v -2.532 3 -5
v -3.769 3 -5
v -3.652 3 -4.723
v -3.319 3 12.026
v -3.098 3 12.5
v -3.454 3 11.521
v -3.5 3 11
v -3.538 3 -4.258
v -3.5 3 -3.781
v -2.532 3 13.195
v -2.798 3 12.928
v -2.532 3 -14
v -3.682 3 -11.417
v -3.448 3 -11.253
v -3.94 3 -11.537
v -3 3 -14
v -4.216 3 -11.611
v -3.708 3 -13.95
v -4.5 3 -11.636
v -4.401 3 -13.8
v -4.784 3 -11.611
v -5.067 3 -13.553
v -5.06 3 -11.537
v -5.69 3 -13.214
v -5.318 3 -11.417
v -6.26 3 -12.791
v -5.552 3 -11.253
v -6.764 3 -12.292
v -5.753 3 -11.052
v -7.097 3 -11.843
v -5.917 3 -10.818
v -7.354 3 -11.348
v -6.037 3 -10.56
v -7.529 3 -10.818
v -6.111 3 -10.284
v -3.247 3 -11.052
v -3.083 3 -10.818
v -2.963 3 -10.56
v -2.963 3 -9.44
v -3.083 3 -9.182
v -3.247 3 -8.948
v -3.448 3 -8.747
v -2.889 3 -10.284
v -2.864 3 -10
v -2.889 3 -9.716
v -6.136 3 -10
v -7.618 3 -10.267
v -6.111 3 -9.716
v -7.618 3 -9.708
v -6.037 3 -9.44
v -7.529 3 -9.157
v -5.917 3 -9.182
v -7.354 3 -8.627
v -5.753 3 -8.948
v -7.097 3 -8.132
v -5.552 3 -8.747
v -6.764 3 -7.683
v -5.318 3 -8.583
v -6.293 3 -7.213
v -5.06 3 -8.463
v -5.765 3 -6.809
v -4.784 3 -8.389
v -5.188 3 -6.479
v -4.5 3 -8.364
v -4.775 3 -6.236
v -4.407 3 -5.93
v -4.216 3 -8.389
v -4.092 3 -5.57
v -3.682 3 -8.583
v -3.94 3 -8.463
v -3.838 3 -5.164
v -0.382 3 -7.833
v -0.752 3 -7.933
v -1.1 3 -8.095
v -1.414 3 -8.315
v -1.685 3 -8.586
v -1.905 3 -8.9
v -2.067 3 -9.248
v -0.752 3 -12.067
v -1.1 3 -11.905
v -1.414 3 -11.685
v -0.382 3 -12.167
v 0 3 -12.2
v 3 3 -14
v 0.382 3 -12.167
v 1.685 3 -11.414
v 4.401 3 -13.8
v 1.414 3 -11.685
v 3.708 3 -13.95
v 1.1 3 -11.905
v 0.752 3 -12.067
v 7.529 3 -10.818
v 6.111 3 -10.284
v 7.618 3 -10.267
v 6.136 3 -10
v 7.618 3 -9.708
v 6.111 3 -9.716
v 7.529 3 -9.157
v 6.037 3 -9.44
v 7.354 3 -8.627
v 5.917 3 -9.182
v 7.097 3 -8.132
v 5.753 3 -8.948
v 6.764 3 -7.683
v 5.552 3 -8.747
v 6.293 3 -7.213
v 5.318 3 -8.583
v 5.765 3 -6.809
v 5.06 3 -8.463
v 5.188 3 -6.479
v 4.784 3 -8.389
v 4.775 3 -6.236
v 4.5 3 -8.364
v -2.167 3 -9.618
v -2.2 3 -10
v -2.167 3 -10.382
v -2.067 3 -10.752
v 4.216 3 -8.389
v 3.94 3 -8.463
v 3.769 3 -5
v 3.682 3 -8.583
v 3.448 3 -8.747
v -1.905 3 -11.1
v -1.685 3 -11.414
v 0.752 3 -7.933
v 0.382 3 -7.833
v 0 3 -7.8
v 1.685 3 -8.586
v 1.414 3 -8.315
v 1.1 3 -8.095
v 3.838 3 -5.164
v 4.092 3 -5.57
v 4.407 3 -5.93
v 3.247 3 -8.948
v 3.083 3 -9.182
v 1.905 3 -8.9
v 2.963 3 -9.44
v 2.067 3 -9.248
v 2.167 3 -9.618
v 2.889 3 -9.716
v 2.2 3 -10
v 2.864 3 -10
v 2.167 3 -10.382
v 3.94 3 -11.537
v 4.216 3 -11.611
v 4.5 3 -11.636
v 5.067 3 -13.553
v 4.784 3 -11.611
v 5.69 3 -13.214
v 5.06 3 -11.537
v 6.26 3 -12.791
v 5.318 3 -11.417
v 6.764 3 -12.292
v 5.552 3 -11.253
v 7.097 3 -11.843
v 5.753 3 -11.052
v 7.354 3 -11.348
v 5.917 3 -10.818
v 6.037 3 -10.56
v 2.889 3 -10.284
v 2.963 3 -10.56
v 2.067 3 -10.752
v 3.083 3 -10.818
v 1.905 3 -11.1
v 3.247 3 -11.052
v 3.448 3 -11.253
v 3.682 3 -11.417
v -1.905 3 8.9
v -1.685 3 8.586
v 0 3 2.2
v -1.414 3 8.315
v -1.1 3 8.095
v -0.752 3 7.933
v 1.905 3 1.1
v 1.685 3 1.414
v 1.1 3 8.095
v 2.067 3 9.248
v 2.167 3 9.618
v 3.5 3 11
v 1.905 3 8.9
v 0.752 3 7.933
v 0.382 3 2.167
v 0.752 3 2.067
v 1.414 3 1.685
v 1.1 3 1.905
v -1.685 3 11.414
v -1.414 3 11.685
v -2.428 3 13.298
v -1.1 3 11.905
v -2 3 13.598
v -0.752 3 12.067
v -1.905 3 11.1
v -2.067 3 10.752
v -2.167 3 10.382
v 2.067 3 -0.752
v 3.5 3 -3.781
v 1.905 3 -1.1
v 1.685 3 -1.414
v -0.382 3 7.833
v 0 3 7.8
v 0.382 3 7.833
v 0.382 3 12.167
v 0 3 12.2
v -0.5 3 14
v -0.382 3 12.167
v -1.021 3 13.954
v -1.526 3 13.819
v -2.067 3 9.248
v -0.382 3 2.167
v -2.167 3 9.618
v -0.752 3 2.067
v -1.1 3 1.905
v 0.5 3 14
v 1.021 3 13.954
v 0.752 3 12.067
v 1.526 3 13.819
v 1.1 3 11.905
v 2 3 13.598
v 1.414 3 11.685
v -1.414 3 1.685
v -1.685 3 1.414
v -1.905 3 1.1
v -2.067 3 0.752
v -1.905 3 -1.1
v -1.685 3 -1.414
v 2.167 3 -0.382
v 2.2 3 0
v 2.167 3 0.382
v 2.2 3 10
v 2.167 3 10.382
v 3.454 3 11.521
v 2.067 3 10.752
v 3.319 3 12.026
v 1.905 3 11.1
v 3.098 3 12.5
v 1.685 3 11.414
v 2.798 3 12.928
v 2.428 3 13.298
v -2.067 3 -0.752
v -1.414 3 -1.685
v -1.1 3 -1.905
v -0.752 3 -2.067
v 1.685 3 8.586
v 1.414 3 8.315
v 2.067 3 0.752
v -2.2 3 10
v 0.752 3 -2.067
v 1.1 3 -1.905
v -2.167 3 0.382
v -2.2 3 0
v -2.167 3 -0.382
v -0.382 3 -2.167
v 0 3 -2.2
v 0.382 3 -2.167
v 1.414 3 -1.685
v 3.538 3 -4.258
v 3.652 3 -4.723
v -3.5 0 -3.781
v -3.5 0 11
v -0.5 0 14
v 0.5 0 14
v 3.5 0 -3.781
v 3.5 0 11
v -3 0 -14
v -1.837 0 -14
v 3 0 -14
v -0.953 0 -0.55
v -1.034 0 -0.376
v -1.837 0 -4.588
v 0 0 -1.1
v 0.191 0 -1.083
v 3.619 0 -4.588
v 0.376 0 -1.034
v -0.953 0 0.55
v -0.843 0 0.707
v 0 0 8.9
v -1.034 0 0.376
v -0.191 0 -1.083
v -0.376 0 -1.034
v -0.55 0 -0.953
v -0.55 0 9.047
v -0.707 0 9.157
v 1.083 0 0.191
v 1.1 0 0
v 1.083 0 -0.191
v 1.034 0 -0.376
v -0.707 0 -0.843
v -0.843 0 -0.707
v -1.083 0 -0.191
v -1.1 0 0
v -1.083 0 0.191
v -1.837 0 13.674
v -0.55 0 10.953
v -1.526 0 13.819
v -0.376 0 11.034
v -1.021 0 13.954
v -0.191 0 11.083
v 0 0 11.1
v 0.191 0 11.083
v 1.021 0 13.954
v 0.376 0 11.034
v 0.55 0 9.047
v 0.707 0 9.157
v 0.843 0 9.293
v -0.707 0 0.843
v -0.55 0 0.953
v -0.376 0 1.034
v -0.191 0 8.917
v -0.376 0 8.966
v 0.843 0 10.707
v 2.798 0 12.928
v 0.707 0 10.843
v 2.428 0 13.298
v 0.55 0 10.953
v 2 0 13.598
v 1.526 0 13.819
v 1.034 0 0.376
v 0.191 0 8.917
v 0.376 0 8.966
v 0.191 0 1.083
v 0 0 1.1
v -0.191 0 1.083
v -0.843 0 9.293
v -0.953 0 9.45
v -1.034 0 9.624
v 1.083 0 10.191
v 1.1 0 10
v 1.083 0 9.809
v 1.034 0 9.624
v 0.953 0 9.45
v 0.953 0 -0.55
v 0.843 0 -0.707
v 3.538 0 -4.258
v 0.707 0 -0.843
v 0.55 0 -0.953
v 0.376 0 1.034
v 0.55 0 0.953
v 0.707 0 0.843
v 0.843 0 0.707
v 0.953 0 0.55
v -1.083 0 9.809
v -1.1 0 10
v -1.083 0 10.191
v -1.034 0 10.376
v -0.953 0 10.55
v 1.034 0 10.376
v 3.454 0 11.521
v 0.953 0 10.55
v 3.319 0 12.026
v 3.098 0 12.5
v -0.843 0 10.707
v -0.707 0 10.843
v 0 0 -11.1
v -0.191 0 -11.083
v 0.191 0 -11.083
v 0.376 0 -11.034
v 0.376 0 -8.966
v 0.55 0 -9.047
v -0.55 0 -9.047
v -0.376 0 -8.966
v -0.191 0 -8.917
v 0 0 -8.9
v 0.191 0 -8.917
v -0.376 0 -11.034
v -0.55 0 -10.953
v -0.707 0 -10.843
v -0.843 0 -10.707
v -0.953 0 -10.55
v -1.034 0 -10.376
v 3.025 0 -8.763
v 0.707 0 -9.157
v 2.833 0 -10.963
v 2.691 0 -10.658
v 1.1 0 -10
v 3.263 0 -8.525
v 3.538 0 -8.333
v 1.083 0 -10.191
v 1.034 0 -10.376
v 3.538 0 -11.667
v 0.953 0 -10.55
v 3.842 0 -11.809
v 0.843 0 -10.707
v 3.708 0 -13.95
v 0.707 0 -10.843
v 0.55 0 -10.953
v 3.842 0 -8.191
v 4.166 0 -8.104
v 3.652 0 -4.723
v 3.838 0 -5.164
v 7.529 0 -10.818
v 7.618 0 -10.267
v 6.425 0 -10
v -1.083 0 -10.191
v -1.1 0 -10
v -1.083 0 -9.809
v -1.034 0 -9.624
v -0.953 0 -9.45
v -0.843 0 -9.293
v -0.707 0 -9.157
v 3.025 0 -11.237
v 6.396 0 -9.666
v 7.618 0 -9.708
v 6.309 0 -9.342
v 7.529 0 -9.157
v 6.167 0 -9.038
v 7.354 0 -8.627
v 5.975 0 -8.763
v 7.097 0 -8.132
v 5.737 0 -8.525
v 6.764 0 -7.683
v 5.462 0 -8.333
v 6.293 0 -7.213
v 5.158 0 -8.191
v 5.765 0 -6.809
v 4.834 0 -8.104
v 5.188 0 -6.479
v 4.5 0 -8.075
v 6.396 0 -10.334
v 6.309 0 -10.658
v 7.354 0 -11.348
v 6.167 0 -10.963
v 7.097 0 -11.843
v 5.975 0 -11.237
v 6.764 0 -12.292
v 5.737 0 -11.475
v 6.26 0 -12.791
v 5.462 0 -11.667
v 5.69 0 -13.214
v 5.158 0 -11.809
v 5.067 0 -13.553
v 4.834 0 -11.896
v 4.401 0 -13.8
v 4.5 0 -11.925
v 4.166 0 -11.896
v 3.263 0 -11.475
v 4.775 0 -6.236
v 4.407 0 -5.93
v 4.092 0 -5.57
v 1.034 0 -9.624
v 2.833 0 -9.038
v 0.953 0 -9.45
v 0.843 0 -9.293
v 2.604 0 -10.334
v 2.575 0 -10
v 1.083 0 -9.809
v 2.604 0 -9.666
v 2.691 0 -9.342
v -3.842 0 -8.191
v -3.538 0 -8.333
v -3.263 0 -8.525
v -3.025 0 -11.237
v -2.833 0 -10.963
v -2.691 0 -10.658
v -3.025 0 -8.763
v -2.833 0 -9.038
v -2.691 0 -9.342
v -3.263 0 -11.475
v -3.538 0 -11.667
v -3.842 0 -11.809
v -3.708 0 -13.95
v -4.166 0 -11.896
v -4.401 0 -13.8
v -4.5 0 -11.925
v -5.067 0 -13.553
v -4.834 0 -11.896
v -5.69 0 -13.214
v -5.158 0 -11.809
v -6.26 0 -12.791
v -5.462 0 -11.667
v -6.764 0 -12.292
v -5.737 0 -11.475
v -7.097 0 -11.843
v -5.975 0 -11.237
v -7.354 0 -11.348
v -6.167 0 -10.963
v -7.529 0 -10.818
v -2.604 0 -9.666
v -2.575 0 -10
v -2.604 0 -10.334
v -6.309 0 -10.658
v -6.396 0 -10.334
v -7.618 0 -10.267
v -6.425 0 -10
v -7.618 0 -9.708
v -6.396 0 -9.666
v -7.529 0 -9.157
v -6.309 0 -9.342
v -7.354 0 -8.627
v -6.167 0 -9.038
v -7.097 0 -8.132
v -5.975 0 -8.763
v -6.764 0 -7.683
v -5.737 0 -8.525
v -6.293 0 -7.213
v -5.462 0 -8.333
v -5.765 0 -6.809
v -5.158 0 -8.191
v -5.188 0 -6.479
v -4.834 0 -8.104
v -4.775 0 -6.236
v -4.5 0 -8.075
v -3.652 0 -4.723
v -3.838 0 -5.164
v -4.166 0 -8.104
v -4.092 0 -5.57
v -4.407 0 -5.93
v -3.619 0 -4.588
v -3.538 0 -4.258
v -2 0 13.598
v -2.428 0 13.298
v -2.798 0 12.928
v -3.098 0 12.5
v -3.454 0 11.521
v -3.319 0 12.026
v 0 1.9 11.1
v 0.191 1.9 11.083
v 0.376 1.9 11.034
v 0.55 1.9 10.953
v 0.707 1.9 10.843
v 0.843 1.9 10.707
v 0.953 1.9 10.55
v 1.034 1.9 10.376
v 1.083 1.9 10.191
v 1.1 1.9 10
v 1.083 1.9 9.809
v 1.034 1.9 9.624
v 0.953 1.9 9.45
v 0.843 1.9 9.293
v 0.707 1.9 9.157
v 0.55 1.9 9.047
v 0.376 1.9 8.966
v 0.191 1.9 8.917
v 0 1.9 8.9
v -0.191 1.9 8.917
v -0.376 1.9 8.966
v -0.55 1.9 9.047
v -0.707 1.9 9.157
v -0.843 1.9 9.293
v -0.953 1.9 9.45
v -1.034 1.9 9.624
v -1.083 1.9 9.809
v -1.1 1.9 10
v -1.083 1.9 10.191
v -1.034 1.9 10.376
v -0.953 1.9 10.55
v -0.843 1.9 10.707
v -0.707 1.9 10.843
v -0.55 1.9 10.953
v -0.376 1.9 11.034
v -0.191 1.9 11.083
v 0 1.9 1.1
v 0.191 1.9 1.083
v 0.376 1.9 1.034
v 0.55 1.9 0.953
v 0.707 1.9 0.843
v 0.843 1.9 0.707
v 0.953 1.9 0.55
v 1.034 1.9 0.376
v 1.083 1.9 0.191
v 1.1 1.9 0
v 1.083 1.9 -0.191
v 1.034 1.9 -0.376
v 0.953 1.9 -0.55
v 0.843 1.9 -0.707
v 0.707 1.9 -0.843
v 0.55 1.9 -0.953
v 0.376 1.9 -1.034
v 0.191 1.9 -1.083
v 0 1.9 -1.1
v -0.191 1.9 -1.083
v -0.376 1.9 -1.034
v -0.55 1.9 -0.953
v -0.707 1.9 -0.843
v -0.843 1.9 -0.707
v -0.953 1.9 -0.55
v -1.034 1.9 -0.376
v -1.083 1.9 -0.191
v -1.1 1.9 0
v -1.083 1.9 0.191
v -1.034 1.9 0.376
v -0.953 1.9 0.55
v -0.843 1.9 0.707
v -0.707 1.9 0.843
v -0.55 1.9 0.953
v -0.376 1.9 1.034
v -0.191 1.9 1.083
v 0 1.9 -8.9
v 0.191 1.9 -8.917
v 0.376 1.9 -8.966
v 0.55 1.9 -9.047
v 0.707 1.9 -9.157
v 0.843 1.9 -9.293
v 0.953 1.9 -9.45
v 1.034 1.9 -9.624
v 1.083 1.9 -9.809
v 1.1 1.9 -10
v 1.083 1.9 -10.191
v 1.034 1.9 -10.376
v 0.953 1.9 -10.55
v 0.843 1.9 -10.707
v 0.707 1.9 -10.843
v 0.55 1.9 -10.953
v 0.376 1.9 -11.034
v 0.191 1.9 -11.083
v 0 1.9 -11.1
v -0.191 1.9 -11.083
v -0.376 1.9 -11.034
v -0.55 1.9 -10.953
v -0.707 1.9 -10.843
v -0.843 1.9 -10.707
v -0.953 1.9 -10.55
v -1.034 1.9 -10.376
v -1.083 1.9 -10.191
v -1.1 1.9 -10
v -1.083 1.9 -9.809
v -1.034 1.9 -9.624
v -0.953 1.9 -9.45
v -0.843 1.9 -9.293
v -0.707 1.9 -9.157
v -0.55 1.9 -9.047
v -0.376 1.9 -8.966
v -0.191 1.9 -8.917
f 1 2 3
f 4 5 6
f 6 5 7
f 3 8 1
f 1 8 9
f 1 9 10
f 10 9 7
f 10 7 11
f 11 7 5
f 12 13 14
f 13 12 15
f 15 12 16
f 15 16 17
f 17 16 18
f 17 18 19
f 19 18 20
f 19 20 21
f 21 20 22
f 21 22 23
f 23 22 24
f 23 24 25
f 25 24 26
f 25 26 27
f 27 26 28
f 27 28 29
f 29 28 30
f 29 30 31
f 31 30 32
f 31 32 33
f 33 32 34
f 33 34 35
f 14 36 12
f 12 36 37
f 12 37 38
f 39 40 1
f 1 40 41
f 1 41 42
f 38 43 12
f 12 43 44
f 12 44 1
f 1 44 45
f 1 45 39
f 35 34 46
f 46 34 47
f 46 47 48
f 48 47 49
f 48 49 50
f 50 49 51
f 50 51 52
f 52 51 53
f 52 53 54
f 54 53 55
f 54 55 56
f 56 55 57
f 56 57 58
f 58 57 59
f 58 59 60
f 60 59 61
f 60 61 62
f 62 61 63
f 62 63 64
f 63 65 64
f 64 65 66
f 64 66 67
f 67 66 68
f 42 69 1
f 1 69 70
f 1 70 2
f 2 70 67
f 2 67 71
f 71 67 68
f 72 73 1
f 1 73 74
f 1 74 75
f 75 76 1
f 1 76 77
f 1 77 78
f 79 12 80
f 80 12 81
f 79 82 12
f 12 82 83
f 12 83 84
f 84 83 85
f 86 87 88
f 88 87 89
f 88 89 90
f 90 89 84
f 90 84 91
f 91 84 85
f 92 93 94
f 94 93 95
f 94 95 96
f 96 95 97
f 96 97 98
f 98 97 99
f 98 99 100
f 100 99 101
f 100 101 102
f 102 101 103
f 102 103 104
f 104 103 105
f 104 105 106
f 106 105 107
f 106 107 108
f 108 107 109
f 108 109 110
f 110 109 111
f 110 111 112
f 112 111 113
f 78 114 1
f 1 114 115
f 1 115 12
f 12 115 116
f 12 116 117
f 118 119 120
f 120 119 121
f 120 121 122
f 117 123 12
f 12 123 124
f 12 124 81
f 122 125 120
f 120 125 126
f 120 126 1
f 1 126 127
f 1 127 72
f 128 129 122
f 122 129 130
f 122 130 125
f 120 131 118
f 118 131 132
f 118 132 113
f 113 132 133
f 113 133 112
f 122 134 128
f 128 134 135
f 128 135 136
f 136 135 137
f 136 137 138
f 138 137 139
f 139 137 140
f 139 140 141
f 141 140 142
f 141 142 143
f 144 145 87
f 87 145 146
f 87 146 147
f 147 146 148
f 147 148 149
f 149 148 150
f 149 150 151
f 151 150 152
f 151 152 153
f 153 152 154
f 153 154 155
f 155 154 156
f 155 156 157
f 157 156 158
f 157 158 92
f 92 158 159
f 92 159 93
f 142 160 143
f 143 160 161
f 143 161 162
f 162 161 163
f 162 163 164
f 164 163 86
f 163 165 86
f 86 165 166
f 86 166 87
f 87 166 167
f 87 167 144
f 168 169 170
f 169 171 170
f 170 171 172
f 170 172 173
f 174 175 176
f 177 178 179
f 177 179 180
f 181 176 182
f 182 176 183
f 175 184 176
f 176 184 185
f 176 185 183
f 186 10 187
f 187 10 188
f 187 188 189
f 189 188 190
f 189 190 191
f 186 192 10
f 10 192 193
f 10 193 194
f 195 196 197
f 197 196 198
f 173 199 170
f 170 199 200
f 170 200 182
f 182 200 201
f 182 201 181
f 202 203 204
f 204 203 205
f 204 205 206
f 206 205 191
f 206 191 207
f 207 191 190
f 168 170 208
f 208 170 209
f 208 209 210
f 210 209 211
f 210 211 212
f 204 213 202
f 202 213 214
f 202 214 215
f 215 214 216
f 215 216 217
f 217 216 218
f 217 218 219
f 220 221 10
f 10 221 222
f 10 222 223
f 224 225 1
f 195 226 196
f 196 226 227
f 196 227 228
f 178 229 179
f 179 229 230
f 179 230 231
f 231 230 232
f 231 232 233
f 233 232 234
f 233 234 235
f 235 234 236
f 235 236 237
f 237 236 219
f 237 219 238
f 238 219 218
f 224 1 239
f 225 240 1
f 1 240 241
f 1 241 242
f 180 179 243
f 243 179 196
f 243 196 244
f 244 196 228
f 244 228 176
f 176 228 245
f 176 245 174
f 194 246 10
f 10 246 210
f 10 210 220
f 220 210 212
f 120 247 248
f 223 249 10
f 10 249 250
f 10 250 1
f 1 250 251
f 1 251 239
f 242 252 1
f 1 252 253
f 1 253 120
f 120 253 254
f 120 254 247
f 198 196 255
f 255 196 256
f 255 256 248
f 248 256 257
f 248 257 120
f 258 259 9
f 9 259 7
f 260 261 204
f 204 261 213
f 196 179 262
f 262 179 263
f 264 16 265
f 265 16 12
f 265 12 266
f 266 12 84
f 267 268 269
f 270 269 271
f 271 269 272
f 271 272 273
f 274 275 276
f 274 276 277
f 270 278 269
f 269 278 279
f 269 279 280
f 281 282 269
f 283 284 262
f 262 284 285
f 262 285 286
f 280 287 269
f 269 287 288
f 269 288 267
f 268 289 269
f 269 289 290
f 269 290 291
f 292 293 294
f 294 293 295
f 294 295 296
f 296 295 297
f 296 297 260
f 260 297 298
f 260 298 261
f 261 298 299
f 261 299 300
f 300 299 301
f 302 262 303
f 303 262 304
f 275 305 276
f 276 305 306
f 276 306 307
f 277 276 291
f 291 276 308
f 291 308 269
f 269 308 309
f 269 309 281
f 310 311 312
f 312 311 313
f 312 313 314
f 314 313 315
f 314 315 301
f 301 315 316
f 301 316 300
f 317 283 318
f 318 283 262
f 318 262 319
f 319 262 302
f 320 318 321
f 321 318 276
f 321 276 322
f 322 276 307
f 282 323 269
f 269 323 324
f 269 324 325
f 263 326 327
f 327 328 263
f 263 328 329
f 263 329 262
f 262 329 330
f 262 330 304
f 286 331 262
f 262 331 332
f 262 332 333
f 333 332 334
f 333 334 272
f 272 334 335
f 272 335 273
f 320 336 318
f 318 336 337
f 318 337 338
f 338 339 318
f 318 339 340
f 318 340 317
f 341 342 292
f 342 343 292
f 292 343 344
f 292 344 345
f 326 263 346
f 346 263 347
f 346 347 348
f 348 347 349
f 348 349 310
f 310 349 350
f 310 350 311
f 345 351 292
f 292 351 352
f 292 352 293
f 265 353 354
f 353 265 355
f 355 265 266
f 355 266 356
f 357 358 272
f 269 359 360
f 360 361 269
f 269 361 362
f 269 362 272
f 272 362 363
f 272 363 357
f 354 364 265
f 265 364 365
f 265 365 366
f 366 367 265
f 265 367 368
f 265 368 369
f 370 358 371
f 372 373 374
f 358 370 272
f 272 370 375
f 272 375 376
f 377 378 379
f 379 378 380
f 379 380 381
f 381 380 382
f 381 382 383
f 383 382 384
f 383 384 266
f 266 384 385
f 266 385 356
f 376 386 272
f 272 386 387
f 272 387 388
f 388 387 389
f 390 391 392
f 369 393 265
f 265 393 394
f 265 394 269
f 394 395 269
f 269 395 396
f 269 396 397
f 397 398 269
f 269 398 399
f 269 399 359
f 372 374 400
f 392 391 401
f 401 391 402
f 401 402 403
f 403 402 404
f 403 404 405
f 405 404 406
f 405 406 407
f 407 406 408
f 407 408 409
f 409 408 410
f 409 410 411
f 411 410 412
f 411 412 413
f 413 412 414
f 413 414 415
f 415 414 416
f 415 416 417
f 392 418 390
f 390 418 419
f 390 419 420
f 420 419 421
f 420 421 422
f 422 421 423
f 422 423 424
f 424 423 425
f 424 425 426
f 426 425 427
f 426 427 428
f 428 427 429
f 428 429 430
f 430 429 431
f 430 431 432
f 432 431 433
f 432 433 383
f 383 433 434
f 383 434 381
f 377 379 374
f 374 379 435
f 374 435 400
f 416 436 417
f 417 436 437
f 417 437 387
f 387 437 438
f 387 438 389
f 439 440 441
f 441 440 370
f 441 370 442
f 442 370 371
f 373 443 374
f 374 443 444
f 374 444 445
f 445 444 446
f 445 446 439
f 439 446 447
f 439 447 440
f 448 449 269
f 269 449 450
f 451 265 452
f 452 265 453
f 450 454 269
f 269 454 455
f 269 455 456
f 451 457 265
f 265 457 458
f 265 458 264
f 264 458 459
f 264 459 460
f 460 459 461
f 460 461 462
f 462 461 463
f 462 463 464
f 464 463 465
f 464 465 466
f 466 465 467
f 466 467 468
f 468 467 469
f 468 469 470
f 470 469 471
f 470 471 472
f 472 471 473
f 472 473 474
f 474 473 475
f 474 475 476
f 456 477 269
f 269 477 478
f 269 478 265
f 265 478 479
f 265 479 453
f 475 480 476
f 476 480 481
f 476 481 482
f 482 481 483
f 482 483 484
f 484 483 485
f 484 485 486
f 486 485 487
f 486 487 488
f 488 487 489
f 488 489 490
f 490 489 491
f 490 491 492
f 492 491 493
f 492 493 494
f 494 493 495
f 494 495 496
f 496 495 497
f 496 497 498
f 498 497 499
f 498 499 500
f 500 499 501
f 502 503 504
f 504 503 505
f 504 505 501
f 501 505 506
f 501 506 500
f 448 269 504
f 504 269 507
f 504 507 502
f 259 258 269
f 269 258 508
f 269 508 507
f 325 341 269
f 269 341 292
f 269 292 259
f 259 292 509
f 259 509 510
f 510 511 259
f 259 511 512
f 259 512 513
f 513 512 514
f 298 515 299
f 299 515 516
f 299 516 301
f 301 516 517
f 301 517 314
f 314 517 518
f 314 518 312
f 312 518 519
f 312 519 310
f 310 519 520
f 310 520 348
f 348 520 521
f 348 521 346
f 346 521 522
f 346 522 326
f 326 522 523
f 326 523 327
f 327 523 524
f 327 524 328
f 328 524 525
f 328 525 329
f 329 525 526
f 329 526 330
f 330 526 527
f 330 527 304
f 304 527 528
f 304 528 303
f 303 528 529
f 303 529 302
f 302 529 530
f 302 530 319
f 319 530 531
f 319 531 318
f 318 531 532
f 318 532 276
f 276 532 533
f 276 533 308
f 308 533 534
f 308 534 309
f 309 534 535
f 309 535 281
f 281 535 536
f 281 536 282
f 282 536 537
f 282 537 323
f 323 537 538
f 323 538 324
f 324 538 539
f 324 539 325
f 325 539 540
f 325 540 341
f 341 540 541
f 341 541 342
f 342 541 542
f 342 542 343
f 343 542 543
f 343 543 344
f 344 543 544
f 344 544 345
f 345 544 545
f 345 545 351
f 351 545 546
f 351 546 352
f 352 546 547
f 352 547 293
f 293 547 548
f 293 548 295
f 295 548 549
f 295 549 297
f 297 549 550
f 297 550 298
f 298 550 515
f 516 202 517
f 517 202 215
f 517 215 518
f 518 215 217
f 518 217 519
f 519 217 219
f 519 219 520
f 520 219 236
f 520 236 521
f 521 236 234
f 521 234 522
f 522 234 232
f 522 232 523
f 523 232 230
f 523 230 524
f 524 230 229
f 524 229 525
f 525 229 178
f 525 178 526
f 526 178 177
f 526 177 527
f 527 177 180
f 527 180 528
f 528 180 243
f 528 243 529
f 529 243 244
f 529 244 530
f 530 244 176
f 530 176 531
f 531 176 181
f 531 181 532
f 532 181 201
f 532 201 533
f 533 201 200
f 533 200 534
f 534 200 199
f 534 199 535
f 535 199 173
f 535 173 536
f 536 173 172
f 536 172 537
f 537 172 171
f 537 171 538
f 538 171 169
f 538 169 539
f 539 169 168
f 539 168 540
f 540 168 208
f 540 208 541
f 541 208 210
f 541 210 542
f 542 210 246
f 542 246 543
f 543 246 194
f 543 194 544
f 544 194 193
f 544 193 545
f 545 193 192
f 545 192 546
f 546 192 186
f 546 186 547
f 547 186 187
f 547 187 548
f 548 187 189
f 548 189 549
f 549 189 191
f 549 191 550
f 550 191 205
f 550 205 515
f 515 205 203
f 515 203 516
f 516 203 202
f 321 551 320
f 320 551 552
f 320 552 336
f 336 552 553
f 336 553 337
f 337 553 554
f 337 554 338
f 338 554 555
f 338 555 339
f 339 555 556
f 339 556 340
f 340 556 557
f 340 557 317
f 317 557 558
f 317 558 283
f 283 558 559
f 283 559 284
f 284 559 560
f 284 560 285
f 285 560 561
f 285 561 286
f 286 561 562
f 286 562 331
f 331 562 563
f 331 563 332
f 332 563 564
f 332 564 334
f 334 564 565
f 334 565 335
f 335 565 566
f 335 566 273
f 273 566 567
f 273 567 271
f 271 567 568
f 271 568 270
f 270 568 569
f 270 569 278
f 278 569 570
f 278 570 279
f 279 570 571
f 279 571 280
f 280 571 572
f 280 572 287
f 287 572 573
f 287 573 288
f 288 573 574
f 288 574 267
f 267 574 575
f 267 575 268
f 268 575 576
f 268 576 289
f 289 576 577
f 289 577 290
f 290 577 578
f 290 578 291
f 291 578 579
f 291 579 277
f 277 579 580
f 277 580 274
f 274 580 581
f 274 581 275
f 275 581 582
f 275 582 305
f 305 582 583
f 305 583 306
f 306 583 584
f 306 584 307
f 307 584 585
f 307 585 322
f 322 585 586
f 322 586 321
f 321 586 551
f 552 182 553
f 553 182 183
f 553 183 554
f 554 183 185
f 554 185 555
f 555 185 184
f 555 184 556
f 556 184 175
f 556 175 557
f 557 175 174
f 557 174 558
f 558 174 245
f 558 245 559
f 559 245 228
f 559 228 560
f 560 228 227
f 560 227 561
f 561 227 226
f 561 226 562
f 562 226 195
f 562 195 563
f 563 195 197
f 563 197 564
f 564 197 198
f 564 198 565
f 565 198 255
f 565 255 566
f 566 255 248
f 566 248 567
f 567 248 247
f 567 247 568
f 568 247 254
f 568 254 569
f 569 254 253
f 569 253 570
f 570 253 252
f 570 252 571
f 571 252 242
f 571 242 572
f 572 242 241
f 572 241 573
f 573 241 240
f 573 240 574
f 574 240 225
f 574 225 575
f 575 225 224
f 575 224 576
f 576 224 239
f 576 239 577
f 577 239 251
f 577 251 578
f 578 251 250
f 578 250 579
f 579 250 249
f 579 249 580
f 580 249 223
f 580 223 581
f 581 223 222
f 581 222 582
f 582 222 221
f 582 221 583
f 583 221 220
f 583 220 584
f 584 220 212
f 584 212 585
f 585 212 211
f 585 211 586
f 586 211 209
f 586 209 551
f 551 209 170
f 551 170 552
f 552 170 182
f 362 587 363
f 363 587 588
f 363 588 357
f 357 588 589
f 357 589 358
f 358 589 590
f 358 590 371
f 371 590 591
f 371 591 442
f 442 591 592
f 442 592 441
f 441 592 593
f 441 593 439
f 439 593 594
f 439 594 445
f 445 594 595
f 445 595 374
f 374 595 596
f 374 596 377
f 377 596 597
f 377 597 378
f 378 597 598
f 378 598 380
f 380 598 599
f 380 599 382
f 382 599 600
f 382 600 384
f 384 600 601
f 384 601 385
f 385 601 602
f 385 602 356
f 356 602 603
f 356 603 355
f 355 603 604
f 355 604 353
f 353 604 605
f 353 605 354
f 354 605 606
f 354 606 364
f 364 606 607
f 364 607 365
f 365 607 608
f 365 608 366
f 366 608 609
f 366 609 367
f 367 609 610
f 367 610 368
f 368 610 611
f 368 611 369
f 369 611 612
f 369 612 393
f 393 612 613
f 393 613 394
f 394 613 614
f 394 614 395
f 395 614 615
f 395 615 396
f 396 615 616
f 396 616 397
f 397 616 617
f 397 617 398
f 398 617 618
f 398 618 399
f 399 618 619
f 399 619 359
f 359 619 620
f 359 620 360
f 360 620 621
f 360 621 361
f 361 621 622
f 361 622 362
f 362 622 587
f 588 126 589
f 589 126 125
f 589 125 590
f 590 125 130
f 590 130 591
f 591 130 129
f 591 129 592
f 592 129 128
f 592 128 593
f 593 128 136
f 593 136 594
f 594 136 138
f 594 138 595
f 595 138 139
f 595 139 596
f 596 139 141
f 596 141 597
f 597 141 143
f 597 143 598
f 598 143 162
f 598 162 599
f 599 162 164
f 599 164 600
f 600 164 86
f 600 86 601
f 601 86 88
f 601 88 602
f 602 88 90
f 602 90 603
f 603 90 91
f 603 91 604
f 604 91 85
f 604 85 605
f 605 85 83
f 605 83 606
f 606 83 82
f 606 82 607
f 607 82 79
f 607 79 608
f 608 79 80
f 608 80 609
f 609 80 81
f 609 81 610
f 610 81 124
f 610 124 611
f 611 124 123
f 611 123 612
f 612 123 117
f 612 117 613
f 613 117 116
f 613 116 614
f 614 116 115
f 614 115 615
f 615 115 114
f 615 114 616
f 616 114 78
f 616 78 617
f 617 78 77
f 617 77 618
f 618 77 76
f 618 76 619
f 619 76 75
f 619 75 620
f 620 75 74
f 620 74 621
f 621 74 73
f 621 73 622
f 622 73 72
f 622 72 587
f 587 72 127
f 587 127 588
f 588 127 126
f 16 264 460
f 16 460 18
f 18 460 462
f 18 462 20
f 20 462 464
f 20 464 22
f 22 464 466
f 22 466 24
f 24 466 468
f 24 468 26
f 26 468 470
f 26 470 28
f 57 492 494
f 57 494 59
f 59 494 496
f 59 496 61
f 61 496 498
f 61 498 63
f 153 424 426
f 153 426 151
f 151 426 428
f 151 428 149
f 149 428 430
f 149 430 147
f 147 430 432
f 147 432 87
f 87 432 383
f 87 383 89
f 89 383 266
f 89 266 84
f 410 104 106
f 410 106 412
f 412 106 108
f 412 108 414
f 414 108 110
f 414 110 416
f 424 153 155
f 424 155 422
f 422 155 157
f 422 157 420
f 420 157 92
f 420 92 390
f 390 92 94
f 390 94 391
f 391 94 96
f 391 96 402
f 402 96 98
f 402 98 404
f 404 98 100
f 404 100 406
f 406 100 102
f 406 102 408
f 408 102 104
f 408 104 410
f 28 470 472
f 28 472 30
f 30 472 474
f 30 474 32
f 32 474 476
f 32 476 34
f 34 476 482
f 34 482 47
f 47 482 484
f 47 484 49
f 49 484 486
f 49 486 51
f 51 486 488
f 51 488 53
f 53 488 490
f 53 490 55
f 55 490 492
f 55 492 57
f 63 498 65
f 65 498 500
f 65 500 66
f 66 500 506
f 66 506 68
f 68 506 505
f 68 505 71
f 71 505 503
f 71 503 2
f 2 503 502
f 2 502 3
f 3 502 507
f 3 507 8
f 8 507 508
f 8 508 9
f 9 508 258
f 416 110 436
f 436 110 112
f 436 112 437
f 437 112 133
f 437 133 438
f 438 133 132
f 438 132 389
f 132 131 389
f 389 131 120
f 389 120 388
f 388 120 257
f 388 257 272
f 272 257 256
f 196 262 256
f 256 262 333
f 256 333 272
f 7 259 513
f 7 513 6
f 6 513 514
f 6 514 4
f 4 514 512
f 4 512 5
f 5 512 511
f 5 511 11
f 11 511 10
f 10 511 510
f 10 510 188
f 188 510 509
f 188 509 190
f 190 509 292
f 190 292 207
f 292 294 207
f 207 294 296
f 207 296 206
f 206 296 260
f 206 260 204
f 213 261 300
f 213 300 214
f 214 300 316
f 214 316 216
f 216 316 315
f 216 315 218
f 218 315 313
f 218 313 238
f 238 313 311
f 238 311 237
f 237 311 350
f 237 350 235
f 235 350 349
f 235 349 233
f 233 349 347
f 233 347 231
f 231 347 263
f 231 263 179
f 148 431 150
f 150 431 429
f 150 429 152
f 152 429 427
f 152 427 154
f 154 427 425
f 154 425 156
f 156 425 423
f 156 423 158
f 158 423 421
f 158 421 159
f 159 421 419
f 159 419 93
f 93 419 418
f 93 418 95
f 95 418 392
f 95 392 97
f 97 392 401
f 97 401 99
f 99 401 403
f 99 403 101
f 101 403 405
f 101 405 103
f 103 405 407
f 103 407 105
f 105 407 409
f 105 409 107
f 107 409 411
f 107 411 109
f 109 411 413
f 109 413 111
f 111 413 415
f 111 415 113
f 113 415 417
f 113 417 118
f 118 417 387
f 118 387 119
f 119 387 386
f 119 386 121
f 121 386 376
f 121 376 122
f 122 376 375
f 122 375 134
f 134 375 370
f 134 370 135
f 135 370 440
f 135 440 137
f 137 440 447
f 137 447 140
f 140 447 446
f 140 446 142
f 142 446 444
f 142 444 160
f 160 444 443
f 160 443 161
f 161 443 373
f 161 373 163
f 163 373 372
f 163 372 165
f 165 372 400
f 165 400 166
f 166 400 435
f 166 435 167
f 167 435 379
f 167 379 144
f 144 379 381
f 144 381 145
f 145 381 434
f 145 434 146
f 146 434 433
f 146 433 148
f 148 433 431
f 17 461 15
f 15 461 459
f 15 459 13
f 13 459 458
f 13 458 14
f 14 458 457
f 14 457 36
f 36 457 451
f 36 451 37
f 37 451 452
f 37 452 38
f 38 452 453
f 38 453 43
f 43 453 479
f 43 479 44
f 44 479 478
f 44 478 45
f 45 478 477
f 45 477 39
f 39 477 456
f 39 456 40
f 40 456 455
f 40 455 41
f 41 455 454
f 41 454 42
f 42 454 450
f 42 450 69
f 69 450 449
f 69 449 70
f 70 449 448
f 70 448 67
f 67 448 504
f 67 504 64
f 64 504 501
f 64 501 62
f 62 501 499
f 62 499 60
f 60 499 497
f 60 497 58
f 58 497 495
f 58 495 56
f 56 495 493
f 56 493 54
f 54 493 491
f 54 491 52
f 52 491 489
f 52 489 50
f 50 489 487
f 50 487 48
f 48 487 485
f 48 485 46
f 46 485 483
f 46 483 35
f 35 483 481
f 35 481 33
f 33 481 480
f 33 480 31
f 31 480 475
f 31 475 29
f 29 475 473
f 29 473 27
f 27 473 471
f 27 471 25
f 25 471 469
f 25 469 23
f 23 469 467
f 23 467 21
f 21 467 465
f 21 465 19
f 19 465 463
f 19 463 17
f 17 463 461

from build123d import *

# Parameters (mm, degrees)
BOSS_EXTRUDE1_DEPTH                                 = 3
CSK_FOR_M2_COUNTERSUNK_FLAT_HEAD_SCREW3_D           = 2.2
CSK_FOR_M2_COUNTERSUNK_FLAT_HEAD_SCREW3_DEPTH       = 3
CSK_FOR_M2_COUNTERSUNK_FLAT_HEAD_SCREW3_CSINK_D     = 4.4
CSK_FOR_M2_COUNTERSUNK_FLAT_HEAD_SCREW3_CSINK_ANGLE = 90
CSK_FOR_M2_COUNTERSUNK_FLAT_HEAD_SCREW3_TIP         = 0.660946681
FILLET1_R                                           = 5
FILLET2_R                                           = 3.5
FILLET3_R                                           = 3
CSK_FOR_M2_COUNTERSUNK_FLAT_HEAD_SCR_2_COUNT        = 2
CSK_FOR_M2_COUNTERSUNK_FLAT_HEAD_SCR_2_PITCH        = 9


with BuildPart() as part:
    # Sketch1 → Boss-Extrude1 (new body)
    with BuildSketch(Plane(origin=(0, 0, 0), x_dir=(1, 0, 0), z_dir=(0, 1, 0))):
        Polygon((3.5, 6), (8, 6), (8, 14), (-8, 14), (-8, 6), (-3.5, 6), (-3.5, -14), (3.5, -14), align=None)
    extrude(amount=BOSS_EXTRUDE1_DEPTH)

    # CSK for M2 Countersunk Flat Head Screw3
    with Locations(Plane(origin=(0, 3, 0), x_dir=(1, 0, 0), z_dir=(0, 1, 0))):
        with Locations((0, 10), (0, 0), (0, -10)):
            CounterSinkHole(CSK_FOR_M2_COUNTERSUNK_FLAT_HEAD_SCREW3_D / 2, CSK_FOR_M2_COUNTERSUNK_FLAT_HEAD_SCREW3_CSINK_D / 2, depth=CSK_FOR_M2_COUNTERSUNK_FLAT_HEAD_SCREW3_DEPTH, counter_sink_angle=CSK_FOR_M2_COUNTERSUNK_FLAT_HEAD_SCREW3_CSINK_ANGLE)
            with Locations((0, 0, -(CSK_FOR_M2_COUNTERSUNK_FLAT_HEAD_SCREW3_DEPTH + CSK_FOR_M2_COUNTERSUNK_FLAT_HEAD_SCREW3_TIP / 2))):  # 118° drill point
                Cone(0, CSK_FOR_M2_COUNTERSUNK_FLAT_HEAD_SCREW3_D / 2, CSK_FOR_M2_COUNTERSUNK_FLAT_HEAD_SCREW3_TIP, mode=Mode.SUBTRACT)

    # Fillet1
    # the kernel refuses this fillet: 5 mm, written as the material it takes off along each edge
    with BuildSketch(Plane(origin=(-8, -12.437342964, -6), x_dir=(1, 0, 0), z_dir=(0, 1, 0))) as fillet1_piece_1:
        with BuildLine():
            CenterArc((5, 4.974937186), FILLET1_R, 180, 84.260829523)
            Line((0, 4.974937186), (-0.1, 4.974937186))
            Line((-0.1, 4.974937186), (-0.1, 0))
            Line((-0.1, 0), (0, -0.1))
            ThreePointArc((0, -0.1), (2.25, -0.1), (4.49, -0.099498744))
            Line((4.49, -0.099498744), (4.5, 0))
        make_face()
    extrude(amount=27.874685928, mode=Mode.SUBTRACT)
    with BuildSketch(Plane(origin=(-8, -12.5, -14), x_dir=(0, 0, 1), z_dir=(0, 1, 0)), Plane(origin=(8, -12.5, -14), x_dir=(-1, 0, 0), z_dir=(0, 1, 0))) as fillet1_piece_2:
        with BuildLine():
            CenterArc((FILLET1_R, FILLET1_R), FILLET1_R, 180, 90)
            Line((0, FILLET1_R), (-FILLET1_R * 0.02, FILLET1_R))
            Line((-FILLET1_R * 0.02, FILLET1_R), (-FILLET1_R * 0.02, -FILLET1_R * 0.02))
            Line((-FILLET1_R * 0.02, -FILLET1_R * 0.02), (FILLET1_R, -FILLET1_R * 0.02))
            Line((FILLET1_R, -FILLET1_R * 0.02), (FILLET1_R, 0))
        make_face()
    extrude(amount=28, mode=Mode.SUBTRACT)
    with BuildSketch(Plane(origin=(8, -12.437342964, -6), x_dir=(-1, 0, 0), z_dir=(0, 1, 0))) as fillet1_piece_3:
        with BuildLine():
            CenterArc((5, -4.974937186), FILLET1_R, 95.739170477, 84.260829523)
            Line((0, -4.974937186), (-0.1, -4.974937186))
            Line((-0.1, -4.974937186), (-0.1, 0))
            Line((-0.1, 0), (0, 0.1))
            ThreePointArc((0, 0.1), (2.25, 0.1), (4.49, 0.099498744))
            Line((4.49, 0.099498744), (4.5, 0))
        make_face()
    extrude(amount=27.874685928, mode=Mode.SUBTRACT)

    # Fillet2
    fillet2_edges = [part.edges().sort_by_distance(p)[0] for p in [
        (-7.901520762, 1.5, -9.987468593),
        (7.901520762, 1.5, -9.987468593),
    ]]
    fillet(fillet2_edges, radius=FILLET2_R)

    # Fillet3
    fillet3_edges = [part.edges().sort_by_distance(p)[0] for p in [
        (3.5, 1.5, -6),
        (3.5, 1.5, 14),
        (-3.5, 1.5, 14),
        (-3.5, 1.5, -6),
    ]]
    fillet(fillet3_edges, radius=FILLET3_R)

    # Sketch8 → CSK for M2 Countersunk Flat Head Screw2 (revolve, cut)
    with BuildSketch(Plane(origin=(-4.5, 0, -10), x_dir=(0, 0, -1), z_dir=(1, 0, 0))):
        Polygon((0, 0), (0, 3), (1.6, 3), (1.6, 3.375254051), (1.925, 0), align=None)
    csk_for_m2_countersunk_flat_head_screw2 = revolve(axis=Axis((-4.5, -6.35, -10), (0, 1, 0)), mode=Mode.SUBTRACT)

    # CSK for M2 Countersunk Flat Head Scr 2: CSK for M2 Countersunk Flat Head Screw2 ×2
    with Locations(*[(i * CSK_FOR_M2_COUNTERSUNK_FLAT_HEAD_SCR_2_PITCH, 0, 0) for i in range(1, CSK_FOR_M2_COUNTERSUNK_FLAT_HEAD_SCR_2_COUNT)]):
        add(csk_for_m2_countersunk_flat_head_screw2, mode=Mode.SUBTRACT)


solid = part.part
